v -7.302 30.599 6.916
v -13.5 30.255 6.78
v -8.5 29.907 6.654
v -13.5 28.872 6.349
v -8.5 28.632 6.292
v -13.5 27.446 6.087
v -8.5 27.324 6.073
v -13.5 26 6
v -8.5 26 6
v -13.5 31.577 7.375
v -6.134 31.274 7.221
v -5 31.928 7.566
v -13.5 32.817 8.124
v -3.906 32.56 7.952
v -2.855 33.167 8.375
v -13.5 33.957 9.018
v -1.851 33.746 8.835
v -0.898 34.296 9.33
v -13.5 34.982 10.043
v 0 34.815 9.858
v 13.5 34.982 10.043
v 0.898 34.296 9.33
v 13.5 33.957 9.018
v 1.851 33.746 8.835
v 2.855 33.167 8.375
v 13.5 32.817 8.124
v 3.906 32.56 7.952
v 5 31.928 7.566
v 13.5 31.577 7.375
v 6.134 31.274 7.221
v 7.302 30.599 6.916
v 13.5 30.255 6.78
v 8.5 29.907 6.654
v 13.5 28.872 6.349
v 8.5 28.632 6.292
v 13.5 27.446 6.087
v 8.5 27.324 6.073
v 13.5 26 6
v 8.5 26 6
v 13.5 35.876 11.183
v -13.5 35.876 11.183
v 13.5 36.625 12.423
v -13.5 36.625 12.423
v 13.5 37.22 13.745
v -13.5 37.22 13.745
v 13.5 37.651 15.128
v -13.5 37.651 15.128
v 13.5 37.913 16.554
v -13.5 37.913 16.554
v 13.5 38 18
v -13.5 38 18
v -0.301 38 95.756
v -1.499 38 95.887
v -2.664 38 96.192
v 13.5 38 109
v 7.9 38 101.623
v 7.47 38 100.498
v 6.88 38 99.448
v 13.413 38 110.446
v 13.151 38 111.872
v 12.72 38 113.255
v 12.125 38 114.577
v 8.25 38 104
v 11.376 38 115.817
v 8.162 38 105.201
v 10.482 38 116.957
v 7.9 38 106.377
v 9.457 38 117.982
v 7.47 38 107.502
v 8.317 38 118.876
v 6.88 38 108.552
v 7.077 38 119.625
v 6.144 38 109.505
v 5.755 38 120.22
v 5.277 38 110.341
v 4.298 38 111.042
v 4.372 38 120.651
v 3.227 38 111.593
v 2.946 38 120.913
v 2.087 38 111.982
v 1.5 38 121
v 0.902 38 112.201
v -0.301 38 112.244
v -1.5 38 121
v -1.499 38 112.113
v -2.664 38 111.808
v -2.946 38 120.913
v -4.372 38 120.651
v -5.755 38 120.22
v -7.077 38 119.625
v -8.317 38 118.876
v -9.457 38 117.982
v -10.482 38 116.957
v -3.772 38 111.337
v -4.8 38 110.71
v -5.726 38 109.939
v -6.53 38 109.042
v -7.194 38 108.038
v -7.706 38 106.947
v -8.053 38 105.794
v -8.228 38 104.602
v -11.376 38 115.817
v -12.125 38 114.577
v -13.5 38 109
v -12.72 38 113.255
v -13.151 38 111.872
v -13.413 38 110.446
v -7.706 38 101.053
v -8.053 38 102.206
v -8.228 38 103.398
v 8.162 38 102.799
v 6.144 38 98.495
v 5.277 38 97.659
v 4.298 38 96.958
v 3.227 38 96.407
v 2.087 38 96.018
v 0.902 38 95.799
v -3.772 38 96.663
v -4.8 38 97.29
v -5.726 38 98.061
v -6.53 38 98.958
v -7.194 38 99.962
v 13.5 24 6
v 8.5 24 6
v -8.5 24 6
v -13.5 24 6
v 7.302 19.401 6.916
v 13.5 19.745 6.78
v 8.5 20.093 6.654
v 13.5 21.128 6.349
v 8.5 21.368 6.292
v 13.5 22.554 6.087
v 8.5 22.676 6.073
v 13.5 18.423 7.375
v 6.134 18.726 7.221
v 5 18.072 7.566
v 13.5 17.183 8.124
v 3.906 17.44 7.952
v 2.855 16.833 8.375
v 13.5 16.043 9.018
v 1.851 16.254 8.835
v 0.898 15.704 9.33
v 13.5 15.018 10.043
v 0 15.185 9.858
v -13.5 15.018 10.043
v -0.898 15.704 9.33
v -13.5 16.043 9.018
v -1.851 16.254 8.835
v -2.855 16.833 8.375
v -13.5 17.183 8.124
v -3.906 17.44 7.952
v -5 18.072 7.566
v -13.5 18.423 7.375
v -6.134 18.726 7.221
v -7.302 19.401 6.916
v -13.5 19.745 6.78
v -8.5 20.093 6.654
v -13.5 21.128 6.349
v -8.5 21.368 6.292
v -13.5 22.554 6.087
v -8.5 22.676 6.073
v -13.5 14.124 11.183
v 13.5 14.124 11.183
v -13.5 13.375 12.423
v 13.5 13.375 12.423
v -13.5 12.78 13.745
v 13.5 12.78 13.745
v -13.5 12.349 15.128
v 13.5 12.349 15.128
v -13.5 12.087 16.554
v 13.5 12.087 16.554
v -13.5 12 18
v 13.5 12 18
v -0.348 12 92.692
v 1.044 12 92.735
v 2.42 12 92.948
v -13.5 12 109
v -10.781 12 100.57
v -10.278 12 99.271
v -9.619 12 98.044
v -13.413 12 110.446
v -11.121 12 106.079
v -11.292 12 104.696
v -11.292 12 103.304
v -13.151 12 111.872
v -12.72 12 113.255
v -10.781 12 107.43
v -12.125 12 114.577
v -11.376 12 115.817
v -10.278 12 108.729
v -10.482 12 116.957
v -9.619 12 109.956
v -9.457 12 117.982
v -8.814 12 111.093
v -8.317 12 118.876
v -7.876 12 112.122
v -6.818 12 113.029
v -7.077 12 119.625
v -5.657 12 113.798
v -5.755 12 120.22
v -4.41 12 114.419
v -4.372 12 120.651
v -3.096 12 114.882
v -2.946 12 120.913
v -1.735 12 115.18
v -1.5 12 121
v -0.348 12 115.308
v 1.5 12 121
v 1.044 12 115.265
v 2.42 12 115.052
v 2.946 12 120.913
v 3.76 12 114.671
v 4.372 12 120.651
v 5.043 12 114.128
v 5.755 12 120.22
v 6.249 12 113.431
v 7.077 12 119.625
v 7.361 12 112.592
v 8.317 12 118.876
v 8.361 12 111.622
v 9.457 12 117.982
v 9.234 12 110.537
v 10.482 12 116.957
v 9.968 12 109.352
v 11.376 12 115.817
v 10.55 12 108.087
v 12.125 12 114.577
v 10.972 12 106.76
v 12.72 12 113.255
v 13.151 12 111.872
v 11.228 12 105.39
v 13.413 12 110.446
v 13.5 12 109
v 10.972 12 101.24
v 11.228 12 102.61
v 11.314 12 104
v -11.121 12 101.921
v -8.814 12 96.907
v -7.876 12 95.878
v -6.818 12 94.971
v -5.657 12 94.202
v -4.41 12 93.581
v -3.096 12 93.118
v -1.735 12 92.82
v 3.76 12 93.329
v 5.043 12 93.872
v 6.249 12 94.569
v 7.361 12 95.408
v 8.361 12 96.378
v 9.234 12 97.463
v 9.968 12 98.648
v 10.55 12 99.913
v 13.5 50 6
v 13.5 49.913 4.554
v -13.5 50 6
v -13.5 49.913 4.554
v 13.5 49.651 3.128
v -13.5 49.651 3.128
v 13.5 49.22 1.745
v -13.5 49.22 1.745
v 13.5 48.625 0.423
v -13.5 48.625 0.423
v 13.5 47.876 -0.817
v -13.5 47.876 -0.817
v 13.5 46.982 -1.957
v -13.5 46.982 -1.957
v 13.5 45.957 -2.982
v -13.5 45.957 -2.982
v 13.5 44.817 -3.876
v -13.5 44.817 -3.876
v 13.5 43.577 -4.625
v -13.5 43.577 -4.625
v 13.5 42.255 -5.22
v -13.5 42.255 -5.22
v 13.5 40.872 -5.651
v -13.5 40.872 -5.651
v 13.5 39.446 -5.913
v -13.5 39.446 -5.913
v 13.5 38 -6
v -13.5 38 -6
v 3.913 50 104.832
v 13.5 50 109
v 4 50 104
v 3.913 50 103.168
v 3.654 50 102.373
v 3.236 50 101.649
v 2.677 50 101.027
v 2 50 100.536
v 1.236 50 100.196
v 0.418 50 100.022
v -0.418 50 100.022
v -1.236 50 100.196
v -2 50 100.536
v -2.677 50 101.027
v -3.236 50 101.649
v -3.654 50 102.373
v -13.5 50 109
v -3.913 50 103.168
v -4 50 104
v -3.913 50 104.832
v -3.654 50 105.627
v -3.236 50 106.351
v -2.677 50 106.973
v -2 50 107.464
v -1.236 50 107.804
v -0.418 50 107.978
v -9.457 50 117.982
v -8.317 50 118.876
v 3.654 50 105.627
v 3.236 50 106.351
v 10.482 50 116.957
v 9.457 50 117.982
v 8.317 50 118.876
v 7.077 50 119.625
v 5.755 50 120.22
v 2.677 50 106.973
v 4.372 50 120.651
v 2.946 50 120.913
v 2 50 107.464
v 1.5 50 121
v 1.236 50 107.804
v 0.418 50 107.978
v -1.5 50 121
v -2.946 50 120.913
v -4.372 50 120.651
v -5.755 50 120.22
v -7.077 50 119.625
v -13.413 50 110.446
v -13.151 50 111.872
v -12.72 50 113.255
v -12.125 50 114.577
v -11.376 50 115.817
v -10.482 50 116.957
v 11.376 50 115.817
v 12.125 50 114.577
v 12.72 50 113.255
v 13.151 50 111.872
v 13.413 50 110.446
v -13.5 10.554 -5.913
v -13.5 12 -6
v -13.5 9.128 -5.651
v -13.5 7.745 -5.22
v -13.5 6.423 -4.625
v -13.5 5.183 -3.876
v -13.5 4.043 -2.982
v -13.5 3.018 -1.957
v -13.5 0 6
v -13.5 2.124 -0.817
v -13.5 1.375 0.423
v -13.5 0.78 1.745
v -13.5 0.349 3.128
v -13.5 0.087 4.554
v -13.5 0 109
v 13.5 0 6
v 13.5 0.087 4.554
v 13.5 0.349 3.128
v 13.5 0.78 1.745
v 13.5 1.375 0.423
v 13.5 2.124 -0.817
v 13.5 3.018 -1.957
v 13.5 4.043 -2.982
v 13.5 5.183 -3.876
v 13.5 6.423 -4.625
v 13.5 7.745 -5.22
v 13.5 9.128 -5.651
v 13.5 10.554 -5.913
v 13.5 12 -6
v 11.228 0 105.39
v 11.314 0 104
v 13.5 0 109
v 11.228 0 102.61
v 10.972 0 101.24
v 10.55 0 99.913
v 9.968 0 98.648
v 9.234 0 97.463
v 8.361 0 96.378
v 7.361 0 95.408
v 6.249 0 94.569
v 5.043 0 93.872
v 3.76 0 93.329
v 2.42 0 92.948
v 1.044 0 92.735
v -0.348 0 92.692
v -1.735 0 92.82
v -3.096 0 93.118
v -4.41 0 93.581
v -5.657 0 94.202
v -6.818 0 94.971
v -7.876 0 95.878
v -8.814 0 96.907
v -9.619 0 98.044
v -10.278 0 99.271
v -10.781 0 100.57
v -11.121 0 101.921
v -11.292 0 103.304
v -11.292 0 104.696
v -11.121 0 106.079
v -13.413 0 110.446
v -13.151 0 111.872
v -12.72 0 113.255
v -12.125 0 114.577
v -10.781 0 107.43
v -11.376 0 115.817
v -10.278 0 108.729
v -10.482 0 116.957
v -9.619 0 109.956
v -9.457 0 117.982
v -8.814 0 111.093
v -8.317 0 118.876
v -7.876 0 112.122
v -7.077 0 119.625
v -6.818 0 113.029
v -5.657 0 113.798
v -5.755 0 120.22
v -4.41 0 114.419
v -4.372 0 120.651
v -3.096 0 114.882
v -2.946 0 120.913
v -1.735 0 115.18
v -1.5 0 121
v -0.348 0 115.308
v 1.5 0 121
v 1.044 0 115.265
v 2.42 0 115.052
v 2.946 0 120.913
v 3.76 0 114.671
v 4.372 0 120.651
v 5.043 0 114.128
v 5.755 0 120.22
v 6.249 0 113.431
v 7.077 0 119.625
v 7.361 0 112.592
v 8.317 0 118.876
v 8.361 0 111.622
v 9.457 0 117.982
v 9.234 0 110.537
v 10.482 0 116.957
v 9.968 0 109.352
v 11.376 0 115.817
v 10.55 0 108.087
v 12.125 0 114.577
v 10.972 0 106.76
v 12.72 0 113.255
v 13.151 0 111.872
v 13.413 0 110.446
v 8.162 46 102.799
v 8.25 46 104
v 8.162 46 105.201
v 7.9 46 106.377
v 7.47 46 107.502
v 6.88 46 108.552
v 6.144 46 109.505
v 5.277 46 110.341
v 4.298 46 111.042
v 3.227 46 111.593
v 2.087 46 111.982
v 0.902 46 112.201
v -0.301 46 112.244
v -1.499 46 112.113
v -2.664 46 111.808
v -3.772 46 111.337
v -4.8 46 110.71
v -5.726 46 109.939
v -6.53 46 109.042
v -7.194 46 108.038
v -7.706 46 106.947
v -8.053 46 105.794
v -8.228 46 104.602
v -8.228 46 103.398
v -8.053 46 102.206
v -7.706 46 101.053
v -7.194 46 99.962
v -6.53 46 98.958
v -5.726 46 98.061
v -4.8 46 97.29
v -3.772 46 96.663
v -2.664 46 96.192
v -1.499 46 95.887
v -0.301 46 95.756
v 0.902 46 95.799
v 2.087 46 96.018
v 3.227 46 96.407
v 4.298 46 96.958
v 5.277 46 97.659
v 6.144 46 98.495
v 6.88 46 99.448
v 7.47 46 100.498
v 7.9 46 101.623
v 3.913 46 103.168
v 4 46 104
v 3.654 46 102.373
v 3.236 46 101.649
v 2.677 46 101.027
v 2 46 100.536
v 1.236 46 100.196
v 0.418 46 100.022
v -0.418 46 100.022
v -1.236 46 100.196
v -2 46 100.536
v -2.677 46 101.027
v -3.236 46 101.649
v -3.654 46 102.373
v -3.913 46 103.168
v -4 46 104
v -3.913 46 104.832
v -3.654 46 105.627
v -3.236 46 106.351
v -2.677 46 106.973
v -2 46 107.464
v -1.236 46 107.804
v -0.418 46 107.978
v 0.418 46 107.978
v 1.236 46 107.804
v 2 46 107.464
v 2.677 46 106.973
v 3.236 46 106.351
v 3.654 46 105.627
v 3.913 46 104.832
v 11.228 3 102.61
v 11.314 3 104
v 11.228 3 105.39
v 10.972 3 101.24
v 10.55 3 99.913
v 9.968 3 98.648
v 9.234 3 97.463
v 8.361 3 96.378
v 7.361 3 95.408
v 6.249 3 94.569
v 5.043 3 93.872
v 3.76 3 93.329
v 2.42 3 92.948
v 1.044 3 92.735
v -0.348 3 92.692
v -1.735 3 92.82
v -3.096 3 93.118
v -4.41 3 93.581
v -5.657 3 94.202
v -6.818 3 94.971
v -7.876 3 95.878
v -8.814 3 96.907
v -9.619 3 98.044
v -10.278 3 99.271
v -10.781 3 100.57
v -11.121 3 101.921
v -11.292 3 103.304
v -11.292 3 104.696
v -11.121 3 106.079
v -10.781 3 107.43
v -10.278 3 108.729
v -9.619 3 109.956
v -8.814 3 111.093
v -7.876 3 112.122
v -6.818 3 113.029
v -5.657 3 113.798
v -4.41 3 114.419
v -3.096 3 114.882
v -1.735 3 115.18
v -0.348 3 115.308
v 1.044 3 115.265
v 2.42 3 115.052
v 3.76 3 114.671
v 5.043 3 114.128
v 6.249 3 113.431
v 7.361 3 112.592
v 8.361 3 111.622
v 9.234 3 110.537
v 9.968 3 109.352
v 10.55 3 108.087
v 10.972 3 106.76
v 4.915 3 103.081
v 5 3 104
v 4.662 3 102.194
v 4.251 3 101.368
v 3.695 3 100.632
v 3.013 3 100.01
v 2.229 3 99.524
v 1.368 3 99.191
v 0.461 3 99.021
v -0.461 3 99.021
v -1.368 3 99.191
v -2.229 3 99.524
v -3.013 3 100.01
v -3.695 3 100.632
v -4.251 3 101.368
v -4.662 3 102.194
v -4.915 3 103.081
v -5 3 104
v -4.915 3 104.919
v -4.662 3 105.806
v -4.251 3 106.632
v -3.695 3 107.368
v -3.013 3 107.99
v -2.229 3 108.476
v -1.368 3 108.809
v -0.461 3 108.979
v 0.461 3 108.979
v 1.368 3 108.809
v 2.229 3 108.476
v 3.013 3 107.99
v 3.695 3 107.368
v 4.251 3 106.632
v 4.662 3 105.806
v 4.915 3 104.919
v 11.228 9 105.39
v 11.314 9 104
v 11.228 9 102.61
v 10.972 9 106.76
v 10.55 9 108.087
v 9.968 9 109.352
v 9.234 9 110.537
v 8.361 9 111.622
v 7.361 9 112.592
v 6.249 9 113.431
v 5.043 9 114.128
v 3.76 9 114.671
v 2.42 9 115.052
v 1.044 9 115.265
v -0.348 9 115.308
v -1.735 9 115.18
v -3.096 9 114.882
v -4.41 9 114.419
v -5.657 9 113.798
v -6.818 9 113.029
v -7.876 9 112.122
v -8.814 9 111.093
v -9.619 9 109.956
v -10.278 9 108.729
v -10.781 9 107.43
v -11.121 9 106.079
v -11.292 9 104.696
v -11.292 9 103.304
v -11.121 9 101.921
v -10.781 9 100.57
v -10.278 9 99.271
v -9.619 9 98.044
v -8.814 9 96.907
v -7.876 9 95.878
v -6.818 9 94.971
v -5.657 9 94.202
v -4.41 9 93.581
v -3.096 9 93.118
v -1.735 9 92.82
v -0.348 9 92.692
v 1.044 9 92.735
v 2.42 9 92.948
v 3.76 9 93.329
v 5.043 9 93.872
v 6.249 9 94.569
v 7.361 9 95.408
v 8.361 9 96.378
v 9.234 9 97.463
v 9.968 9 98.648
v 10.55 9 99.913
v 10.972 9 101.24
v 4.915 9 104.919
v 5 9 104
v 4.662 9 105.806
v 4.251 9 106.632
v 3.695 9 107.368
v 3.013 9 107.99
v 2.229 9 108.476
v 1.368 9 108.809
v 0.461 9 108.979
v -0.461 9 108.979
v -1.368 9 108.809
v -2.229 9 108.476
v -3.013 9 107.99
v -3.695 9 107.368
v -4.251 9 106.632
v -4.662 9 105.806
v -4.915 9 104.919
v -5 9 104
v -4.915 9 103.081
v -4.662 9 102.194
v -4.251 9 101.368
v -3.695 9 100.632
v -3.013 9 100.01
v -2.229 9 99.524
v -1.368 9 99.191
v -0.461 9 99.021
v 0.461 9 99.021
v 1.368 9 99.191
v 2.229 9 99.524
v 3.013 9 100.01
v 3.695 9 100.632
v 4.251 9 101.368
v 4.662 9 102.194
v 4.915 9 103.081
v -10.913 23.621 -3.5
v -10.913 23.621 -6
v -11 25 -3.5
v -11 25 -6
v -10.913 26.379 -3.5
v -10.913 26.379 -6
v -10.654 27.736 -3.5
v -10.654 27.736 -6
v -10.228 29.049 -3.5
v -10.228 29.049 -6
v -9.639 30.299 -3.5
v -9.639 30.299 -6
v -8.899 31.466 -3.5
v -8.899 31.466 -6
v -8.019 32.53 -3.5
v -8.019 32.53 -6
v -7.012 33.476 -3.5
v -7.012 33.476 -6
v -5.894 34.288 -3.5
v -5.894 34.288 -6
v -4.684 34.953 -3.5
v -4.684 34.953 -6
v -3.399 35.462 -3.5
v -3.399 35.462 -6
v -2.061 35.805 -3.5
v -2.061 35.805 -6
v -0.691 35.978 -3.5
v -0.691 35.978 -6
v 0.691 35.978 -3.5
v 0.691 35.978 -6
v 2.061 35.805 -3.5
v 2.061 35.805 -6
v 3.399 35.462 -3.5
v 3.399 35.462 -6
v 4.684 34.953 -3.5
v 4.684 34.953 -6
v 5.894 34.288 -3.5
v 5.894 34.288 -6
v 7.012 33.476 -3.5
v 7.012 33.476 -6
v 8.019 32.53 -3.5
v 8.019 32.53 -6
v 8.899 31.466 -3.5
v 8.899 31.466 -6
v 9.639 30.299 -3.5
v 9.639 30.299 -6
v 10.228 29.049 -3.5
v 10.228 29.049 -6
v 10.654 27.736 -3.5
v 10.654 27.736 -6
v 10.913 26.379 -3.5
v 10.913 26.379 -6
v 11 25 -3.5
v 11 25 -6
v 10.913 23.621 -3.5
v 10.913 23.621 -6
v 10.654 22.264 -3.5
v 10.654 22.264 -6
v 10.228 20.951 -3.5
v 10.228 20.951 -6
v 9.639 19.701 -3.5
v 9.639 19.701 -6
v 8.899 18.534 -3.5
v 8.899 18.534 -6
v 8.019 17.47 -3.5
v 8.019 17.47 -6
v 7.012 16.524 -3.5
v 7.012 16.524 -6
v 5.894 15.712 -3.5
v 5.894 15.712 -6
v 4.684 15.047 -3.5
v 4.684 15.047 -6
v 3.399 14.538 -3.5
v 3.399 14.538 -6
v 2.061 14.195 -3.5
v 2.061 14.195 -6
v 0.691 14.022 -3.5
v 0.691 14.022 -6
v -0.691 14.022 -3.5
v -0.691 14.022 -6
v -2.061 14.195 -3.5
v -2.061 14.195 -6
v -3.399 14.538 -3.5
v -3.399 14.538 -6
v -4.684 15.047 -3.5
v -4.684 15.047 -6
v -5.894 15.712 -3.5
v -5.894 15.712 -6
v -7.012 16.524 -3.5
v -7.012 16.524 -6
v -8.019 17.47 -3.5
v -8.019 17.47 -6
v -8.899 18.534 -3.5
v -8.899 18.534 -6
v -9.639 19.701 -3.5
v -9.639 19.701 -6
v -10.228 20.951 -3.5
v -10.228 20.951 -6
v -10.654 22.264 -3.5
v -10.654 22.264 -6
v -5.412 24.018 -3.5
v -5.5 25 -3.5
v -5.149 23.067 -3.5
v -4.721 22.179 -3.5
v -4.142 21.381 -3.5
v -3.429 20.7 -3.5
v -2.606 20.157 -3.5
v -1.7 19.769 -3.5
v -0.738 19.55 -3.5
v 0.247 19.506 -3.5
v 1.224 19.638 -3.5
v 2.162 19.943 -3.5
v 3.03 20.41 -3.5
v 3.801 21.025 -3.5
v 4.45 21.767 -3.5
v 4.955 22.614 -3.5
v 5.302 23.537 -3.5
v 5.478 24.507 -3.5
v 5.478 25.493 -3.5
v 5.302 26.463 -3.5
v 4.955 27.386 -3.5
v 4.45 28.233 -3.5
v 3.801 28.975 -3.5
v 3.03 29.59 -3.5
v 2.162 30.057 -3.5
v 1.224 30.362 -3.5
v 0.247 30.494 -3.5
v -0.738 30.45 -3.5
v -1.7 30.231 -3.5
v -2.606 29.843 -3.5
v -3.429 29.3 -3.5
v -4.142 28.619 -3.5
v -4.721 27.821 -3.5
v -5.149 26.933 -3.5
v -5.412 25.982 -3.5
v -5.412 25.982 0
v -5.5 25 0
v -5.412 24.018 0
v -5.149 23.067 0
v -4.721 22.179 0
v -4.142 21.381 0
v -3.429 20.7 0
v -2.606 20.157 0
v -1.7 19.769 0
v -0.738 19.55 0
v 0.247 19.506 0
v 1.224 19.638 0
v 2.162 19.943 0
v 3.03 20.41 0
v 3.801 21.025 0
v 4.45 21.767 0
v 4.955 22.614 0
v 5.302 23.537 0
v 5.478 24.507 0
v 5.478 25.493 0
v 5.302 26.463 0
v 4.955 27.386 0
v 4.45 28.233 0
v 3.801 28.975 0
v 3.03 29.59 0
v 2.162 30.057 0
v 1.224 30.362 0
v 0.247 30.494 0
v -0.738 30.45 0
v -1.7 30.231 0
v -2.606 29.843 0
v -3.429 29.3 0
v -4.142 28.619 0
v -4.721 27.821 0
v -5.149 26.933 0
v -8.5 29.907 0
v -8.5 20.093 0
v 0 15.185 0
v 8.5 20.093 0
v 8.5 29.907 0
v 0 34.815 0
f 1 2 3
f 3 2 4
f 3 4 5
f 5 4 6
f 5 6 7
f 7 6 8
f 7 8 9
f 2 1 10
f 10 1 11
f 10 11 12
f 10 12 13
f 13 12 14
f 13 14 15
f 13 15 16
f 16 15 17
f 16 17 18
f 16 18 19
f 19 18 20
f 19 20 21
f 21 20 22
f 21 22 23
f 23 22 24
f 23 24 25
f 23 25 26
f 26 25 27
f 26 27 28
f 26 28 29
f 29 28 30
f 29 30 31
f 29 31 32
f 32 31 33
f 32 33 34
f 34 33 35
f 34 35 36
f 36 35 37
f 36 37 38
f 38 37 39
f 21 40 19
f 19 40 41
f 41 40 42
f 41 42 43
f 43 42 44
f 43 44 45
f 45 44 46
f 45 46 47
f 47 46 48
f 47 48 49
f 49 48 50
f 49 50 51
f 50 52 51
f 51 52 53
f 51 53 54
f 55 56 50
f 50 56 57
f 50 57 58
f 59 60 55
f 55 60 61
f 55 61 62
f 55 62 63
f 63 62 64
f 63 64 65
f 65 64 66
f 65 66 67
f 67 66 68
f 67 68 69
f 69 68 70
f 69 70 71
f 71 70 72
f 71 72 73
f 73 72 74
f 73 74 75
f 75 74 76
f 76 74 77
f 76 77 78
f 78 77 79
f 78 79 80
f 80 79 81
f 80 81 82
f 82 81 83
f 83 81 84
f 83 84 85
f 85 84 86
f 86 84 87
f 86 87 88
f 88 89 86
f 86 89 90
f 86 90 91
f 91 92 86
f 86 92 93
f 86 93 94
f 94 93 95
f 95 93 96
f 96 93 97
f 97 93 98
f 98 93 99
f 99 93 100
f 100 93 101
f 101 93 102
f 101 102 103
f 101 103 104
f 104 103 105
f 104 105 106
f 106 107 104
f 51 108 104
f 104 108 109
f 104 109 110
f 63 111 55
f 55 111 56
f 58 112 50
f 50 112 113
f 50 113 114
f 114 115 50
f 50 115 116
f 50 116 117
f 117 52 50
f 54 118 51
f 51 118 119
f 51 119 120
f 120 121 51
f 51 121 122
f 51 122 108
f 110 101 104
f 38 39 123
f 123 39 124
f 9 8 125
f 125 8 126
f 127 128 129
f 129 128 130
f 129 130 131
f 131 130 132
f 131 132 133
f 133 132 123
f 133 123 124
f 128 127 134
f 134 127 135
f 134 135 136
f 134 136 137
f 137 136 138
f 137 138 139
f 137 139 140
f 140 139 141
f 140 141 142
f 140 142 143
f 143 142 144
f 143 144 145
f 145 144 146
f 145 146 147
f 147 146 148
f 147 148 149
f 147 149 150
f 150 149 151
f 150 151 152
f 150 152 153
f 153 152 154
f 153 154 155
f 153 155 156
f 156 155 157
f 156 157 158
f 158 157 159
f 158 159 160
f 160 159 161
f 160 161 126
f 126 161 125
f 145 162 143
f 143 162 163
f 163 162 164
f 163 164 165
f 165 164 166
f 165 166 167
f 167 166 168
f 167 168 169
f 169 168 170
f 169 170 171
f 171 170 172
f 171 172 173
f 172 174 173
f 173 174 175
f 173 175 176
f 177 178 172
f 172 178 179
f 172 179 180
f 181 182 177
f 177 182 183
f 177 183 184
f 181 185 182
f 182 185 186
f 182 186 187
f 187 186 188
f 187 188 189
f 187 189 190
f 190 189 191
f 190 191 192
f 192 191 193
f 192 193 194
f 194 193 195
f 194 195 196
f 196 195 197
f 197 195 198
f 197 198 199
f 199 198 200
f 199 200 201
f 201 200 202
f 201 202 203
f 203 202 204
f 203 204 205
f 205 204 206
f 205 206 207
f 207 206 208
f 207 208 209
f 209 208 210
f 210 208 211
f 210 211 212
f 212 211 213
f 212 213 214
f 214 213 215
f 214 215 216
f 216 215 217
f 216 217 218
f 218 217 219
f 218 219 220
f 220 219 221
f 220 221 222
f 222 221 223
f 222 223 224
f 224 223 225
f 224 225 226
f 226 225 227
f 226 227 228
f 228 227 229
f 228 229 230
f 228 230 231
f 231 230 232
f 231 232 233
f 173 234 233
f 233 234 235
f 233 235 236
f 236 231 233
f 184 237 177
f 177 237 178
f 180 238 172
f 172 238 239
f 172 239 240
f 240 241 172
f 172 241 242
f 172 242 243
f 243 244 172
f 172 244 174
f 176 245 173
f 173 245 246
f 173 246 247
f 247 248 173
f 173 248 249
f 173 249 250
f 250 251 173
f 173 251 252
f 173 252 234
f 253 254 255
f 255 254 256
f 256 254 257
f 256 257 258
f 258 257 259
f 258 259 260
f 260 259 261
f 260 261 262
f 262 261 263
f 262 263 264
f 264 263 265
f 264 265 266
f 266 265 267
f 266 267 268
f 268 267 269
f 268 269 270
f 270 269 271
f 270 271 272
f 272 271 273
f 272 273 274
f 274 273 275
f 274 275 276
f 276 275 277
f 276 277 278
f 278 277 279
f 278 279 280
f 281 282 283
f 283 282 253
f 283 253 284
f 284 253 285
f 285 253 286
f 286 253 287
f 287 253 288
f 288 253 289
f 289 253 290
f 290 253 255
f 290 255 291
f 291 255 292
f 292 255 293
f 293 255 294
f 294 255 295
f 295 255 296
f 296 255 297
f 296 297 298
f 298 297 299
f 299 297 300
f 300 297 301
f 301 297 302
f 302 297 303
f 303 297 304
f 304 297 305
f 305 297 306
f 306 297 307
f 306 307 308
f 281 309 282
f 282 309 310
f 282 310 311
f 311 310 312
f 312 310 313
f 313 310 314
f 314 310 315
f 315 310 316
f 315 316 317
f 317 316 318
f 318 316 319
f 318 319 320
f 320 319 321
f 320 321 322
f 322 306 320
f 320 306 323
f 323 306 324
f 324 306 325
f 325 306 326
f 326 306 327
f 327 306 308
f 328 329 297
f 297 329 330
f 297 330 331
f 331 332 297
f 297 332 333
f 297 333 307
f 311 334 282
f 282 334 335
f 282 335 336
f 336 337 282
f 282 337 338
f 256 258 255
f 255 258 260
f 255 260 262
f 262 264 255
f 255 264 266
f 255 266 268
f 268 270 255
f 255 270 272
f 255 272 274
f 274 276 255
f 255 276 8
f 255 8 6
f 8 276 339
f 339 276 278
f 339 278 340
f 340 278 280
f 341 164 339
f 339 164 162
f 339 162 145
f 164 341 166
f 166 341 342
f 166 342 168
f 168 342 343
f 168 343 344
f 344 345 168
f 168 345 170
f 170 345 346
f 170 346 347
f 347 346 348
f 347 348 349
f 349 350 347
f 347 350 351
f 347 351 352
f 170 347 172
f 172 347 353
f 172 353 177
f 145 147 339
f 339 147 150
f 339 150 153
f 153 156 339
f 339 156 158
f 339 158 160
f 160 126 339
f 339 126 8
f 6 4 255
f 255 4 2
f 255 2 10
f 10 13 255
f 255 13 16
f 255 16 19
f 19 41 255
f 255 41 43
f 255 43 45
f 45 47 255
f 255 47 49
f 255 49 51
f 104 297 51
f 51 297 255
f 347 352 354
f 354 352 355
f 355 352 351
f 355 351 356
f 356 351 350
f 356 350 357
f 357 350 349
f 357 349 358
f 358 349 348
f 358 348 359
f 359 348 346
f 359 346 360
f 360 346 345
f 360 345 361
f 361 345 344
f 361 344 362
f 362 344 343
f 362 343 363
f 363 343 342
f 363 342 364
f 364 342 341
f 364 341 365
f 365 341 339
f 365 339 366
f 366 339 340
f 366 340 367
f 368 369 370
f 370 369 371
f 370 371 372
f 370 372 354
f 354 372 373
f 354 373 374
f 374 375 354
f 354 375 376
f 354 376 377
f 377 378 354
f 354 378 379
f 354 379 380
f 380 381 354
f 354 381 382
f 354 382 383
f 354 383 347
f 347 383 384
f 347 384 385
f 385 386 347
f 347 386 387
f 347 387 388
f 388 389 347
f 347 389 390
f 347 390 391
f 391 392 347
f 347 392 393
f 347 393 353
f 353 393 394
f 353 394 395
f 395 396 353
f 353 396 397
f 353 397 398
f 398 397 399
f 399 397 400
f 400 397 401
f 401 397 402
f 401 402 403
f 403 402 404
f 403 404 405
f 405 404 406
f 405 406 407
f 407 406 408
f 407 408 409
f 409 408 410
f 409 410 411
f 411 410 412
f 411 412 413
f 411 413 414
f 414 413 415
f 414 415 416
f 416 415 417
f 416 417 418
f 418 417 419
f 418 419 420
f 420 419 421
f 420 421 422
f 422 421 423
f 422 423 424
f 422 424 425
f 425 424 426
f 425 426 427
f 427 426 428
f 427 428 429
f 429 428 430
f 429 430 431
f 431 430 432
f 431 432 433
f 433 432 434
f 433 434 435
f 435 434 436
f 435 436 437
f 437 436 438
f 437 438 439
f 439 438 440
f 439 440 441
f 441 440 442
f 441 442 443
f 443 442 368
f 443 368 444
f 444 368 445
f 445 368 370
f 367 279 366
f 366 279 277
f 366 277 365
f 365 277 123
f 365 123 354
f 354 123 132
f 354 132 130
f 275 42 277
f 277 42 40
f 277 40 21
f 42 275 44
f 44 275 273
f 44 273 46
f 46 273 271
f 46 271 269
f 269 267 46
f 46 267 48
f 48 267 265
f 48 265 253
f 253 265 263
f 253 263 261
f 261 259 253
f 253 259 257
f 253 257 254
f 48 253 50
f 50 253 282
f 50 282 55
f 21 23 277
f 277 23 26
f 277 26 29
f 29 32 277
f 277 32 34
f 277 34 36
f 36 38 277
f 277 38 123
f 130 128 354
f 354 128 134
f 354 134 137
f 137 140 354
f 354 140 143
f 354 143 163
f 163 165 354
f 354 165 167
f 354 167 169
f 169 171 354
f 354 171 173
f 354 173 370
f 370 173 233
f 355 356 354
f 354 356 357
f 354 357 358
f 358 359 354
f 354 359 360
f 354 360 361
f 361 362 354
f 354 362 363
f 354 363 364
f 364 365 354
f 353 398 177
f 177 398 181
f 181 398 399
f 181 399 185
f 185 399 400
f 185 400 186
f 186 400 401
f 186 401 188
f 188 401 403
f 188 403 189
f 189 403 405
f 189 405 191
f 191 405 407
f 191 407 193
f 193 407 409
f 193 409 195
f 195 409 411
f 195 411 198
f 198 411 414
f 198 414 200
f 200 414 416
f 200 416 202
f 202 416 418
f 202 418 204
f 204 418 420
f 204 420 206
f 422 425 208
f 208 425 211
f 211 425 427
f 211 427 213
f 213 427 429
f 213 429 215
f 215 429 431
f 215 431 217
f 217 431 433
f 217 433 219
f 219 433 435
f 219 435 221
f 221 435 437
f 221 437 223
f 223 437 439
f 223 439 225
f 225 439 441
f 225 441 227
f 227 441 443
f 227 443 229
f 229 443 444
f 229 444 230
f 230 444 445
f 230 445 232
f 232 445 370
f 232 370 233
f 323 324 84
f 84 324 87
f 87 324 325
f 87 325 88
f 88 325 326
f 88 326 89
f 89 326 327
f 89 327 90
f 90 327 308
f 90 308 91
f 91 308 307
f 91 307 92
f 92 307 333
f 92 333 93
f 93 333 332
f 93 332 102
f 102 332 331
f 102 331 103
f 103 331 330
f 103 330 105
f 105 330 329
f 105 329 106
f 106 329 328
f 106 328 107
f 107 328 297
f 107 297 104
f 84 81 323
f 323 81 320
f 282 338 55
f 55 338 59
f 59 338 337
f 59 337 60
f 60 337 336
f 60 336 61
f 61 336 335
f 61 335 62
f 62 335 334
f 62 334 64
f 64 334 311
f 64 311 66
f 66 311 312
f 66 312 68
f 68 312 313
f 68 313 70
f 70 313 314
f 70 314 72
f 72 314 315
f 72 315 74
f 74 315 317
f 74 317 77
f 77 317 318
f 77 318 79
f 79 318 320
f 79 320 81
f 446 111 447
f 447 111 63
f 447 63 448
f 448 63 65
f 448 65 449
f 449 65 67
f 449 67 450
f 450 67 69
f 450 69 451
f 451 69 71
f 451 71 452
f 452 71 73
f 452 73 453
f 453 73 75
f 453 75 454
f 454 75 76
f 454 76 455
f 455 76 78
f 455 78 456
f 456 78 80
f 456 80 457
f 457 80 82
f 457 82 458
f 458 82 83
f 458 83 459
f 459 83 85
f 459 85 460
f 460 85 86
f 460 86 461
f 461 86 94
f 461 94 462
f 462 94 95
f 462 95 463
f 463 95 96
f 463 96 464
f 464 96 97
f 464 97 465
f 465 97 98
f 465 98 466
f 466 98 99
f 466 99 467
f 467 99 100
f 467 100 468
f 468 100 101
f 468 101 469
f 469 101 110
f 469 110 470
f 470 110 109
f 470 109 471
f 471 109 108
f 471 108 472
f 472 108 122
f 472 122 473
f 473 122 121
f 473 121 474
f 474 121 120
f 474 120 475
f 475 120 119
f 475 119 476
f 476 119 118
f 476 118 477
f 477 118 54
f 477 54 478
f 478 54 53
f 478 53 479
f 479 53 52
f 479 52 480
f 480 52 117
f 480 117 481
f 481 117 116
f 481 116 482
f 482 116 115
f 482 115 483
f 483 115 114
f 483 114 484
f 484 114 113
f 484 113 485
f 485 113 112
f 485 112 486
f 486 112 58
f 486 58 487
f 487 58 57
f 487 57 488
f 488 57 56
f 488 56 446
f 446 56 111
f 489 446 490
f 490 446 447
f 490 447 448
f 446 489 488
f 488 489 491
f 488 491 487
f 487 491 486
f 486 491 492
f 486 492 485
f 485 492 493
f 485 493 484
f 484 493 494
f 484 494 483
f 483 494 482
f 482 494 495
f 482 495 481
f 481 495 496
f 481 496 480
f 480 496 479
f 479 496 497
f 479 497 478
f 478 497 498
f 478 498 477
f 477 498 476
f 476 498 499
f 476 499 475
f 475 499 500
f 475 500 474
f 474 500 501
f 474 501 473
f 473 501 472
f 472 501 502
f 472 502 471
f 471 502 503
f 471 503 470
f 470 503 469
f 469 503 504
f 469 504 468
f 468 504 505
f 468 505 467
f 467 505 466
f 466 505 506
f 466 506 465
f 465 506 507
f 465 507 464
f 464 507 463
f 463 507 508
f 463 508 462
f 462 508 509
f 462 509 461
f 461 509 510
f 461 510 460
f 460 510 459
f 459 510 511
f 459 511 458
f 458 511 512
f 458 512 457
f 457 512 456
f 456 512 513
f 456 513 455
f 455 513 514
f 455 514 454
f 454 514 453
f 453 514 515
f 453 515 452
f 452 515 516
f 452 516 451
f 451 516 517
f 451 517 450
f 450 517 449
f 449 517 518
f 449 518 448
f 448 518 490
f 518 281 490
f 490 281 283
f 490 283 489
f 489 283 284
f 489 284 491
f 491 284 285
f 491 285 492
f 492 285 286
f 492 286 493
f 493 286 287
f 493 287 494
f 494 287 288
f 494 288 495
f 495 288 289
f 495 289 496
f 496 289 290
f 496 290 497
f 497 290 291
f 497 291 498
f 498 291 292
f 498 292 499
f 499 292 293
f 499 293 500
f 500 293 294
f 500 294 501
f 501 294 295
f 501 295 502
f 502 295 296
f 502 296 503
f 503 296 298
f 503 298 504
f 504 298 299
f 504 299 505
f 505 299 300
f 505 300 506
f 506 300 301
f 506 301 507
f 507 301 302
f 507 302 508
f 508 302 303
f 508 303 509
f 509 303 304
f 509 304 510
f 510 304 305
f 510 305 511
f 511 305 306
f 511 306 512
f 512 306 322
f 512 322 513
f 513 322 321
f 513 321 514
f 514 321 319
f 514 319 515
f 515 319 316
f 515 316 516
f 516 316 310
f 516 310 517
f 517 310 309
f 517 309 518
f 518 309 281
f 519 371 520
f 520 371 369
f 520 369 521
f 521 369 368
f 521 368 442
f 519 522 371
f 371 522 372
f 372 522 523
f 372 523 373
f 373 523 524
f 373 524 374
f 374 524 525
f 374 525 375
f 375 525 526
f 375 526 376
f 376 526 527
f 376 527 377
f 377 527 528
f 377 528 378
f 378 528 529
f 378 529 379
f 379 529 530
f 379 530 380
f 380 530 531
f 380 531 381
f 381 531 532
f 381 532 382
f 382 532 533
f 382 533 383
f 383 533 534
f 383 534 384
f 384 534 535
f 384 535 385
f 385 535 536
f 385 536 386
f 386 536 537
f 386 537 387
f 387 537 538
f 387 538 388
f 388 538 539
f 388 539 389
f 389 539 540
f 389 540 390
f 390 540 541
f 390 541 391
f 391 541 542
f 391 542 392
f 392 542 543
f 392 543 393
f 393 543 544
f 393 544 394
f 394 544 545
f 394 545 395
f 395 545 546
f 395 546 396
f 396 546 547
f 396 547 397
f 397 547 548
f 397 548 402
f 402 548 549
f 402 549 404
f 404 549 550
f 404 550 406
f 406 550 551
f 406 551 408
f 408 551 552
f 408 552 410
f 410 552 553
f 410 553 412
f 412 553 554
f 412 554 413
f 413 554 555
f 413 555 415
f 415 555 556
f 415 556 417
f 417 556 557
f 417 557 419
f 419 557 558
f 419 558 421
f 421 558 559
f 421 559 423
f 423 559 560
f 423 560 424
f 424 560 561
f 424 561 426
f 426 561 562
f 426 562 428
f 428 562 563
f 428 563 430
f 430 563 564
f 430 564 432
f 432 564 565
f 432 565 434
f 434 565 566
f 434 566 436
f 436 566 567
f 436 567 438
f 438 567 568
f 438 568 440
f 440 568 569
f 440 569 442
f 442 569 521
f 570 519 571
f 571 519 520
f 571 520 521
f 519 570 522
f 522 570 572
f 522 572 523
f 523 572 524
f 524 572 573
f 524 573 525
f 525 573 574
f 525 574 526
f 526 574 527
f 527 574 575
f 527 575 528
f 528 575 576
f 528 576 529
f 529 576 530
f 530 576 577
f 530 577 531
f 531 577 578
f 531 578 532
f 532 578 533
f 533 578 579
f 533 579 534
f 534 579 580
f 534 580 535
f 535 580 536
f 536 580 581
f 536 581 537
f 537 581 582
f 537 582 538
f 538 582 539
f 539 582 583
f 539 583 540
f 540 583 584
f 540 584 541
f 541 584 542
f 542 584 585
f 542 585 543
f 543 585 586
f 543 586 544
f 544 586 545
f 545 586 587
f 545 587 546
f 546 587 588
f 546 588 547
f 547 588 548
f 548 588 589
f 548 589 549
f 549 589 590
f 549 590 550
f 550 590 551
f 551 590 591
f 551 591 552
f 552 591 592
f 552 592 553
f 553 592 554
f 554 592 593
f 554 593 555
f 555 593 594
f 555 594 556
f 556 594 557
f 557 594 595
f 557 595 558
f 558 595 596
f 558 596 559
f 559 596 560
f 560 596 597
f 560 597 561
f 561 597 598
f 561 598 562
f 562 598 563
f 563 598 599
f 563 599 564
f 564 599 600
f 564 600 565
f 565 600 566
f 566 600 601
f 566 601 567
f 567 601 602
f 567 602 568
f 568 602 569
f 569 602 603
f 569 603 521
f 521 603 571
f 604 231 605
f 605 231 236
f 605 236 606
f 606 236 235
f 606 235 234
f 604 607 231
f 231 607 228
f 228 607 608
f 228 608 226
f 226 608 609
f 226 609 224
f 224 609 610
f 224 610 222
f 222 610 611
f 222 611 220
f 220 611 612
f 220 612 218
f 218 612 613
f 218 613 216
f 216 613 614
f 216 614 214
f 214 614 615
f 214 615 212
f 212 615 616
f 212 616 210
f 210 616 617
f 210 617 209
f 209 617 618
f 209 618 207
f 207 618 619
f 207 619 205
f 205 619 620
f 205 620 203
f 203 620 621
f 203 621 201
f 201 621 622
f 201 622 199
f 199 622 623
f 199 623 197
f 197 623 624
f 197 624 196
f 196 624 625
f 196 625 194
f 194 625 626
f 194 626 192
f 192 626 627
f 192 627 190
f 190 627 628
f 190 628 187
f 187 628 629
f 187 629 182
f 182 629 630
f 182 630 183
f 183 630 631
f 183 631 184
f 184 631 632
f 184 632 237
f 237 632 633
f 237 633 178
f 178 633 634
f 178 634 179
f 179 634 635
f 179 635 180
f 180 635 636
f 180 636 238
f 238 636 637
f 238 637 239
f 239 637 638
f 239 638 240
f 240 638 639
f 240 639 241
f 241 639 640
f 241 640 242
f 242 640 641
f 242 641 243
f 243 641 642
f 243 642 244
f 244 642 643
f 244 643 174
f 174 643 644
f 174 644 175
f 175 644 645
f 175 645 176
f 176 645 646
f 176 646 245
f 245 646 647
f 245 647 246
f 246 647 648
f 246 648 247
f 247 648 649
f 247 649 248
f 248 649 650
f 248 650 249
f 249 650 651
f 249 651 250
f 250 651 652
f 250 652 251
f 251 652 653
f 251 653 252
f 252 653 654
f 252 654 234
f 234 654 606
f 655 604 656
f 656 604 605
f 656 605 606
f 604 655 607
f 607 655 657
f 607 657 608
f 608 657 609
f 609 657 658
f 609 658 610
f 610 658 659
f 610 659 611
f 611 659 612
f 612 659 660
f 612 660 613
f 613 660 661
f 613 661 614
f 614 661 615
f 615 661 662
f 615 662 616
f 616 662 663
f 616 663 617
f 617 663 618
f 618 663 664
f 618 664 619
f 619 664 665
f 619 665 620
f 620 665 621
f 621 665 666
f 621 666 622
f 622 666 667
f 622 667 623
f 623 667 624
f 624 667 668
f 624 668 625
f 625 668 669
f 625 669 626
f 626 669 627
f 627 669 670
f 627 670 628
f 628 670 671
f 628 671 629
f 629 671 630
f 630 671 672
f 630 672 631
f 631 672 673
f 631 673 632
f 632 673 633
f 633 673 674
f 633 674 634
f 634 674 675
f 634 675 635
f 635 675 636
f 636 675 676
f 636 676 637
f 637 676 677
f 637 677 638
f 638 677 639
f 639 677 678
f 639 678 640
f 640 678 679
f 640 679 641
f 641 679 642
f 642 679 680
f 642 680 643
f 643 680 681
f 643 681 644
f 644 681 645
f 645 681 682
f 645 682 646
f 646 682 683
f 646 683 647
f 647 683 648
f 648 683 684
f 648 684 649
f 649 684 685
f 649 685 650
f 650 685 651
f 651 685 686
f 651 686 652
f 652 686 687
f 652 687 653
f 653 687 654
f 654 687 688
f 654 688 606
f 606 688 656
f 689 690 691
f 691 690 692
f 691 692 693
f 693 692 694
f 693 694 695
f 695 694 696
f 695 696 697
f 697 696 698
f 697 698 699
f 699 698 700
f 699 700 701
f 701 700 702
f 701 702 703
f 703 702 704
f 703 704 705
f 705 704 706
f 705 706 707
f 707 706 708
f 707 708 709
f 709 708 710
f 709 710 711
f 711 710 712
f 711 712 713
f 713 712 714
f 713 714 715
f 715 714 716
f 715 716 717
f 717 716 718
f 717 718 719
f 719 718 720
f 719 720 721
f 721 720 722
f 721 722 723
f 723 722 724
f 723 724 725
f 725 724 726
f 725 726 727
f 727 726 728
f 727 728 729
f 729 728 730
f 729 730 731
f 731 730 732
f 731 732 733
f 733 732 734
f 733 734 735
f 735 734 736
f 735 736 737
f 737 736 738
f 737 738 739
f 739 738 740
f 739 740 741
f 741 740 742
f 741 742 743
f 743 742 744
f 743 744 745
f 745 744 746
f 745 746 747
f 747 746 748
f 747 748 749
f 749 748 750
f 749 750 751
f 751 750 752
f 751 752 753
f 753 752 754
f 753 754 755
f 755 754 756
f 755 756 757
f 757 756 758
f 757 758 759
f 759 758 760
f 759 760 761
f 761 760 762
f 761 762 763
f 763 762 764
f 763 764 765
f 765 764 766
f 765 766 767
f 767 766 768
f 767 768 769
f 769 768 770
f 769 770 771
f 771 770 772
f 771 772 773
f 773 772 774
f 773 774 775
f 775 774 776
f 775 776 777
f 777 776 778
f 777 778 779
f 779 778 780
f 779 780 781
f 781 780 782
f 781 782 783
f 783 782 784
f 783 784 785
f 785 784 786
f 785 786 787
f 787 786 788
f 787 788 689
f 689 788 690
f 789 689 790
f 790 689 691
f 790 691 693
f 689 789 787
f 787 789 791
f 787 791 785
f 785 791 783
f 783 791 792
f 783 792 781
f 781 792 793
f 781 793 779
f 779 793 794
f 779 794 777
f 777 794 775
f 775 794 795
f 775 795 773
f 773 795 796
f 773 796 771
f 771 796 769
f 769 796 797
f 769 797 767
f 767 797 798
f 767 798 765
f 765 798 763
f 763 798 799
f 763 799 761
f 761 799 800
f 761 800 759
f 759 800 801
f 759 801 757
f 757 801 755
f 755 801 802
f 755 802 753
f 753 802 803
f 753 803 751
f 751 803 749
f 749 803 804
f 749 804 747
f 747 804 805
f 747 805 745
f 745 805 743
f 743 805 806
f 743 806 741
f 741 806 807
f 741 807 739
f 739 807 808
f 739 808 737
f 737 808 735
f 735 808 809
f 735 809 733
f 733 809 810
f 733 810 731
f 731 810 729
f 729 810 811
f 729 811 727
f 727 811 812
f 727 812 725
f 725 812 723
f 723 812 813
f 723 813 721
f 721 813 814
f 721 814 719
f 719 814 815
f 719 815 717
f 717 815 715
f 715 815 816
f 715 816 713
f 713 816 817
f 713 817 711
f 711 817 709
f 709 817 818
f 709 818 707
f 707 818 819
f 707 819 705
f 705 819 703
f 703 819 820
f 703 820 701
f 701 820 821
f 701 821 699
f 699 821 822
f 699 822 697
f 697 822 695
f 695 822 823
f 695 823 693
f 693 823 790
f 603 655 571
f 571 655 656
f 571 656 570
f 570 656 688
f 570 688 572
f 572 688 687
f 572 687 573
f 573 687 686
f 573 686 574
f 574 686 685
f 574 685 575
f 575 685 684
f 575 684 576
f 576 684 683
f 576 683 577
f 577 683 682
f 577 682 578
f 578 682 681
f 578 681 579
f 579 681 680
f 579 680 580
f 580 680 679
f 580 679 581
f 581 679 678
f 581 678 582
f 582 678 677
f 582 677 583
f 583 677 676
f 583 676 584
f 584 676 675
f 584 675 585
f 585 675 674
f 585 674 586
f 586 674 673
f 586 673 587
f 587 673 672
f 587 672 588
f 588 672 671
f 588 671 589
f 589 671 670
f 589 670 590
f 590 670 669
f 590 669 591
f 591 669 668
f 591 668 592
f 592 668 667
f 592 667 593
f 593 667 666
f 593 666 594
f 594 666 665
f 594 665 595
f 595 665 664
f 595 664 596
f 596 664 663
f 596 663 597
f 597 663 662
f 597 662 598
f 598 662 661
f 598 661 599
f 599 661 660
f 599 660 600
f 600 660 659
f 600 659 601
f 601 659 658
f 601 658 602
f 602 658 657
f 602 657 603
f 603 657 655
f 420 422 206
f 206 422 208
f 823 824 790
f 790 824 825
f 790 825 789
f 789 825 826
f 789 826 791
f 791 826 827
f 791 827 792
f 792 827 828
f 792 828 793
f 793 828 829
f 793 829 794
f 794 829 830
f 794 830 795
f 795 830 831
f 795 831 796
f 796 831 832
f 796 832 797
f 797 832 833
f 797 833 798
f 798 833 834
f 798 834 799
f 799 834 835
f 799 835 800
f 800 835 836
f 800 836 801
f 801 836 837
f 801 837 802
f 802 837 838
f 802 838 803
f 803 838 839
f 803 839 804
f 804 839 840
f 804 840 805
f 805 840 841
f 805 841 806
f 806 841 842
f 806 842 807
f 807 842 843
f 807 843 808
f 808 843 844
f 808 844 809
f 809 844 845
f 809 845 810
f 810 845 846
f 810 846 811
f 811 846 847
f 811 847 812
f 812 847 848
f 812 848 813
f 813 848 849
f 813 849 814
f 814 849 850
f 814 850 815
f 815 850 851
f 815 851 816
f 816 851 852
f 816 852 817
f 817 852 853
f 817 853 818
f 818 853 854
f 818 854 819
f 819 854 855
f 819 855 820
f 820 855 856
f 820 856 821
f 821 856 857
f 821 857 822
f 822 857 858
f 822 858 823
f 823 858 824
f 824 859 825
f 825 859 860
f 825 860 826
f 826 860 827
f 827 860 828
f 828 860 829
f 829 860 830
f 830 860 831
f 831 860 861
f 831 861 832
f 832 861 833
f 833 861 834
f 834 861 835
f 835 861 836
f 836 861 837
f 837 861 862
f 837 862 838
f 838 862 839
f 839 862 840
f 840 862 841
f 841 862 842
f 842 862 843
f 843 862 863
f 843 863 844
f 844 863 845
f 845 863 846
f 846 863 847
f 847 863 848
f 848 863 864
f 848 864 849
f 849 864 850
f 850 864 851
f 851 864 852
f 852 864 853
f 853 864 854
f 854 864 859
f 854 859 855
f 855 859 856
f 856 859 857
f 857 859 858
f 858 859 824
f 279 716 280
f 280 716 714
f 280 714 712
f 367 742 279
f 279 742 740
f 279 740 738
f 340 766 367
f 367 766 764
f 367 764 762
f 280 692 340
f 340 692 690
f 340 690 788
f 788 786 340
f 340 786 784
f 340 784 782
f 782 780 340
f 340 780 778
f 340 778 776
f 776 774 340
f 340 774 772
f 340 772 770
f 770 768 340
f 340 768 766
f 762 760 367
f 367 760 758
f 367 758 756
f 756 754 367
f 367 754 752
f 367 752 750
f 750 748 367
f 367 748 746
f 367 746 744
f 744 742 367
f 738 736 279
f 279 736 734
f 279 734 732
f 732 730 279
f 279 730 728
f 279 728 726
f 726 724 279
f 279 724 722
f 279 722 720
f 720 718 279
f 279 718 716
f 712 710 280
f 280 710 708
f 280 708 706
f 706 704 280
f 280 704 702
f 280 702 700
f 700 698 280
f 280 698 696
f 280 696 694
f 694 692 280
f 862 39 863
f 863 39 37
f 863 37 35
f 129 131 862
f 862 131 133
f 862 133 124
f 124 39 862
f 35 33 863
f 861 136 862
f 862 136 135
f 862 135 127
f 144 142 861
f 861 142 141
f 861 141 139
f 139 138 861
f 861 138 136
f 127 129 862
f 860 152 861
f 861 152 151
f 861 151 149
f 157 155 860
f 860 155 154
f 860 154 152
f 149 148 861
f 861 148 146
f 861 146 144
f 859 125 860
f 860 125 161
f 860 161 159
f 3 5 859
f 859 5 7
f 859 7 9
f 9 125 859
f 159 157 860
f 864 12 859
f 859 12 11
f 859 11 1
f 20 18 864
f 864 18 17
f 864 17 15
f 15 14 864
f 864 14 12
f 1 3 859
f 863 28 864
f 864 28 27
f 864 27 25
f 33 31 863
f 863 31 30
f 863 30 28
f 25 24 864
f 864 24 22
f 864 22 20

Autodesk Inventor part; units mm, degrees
ref_plane "YZ Plane" through (0, 0, 0) normal (1, 0, 0) x (0, 1, 0)
ref_plane "XZ Plane" through (0, 0, 0) normal (0, 1, 0) x (-1, 0, 0)
ref_plane "XY Plane" through (0, 0, 0) normal (0, 0, 1) x (1, 0, 0)
sketch "Boceto1" plane through (0, 0, 0) normal (0, 0, 1) x (1, 0, 0)
  line L0 (-13.5, 50) -> (13.5, 50)
  line L1 (13.5, 50) -> (13.5, 0)
  line L2 (13.5, 0) -> (-13.5, 0)
  line L3 (-13.5, 0) -> (-13.5, 50)
  line L4 (0, 0) -> (0, 50) construction
  line L5 (0, 34.815) -> (8.5, 29.9075)
  line L6 (8.5, 29.9075) -> (8.5, 20.0925)
  line L7 (8.5, 20.0925) -> (0, 15.185)
  line L8 (0, 15.185) -> (-8.5, 20.0925)
  line L9 (-8.5, 20.0925) -> (-8.5, 29.9075)
  line L10 (-8.5, 29.9075) -> (0, 34.815)
  line L11 (-8.5, 29.9075) -> (-13.5, 29.9075) construction
  line L12 (8.5, 29.9075) -> (13.5, 29.9075) construction
  point P0 (0, 25)
  dimension "d20" = 17
  dimension "d21" = 5
  dimension "d22" = 27
  dimension "d23" = 50
extrude "Extrusión1" add sketch "Boceto1" along normal blind 6
sketch "Boceto2" plane through (0, 0, 0) normal (0, 0, -1) x (-1, 0, 0)
  line L0 (-8.5, 20.0925) -> (-8.5, 29.9075) projected
  line L1 (-8.5, 29.9075) -> (0, 34.815) projected
  line L2 (0, 34.815) -> (8.5, 29.9075) projected
  line L3 (8.5, 29.9075) -> (8.5, 20.0925) projected
  line L4 (8.5, 20.0925) -> (0, 15.185) projected
  line L5 (0, 15.185) -> (-8.5, 20.0925) projected
  line L6 (13.5, 50) -> (-13.5, 50) projected
  line L7 (-13.5, 50) -> (-13.5, 0) projected
  line L8 (-13.5, 0) -> (13.5, 0) projected
  line L9 (13.5, 0) -> (13.5, 50) projected
  point P0 (0, 0)
extrude "Extrusión2" add sketch "Boceto2" along normal blind 6 contours L0 L1 L2 L3 L4 L5 | L9 L8 L7 L6
sketch "Boceto3" plane through (0, 0, -6) normal (0, 0, -1) x (-1, 0, 0)
  line L0 (0, 0) -> (0, 50) construction
  line L1 (-13.5, 50) -> (13.5, 50) projected
  circle A0 centre (0, 25) radius 5.5
  dimension "d18" = 11
extrude "Extrusión3" cut sketch "Boceto3" against normal up to next
sketch "Boceto5" plane through (0, 0, 6) normal (0, 0, 1) x (1, 0, 0)
  line L0 (-13.5, 0) -> (-13.5, 50) projected
  line L1 (13.5, 50) -> (13.5, 0) projected
  line L2 (-13.5, 0) -> (13.5, 0)
  line L3 (13.5, 0) -> (13.5, 12)
  line L4 (13.5, 12) -> (-13.5, 12)
  line L5 (-13.5, 12) -> (-13.5, 0)
  line L6 (13.5, 50) -> (-13.5, 50) projected
  line L7 (-13.5, 50) -> (13.5, 50)
  line L8 (13.5, 50) -> (13.5, 38)
  line L9 (13.5, 38) -> (-13.5, 38)
  line L10 (-13.5, 38) -> (-13.5, 50)
  line L11 (-17.3027, 25) -> (12.0796, 25) construction
  line L12 (-8.5, 20.0925) -> (-8.5, 29.9075) projected
  point P0 (0, 0)
  point P1 (-8.5, 25)
  dimension "d24" = 12
extrude "Extrusión4" add sketch "Boceto5" along normal blind 115 contours L0 L4 L1 L2 | L0 L6 L1 L9
sketch "Boceto9" plane through (-13.5, 0, -6) normal (0, -1, 0) x (1, 0, 0)
  circle A0 centre (13.5, 110) radius 5
  line L0 (0, 127) -> (27, 127) projected
  line L1 (13.5, 110) -> (13.5, 115)
  line L2 (13.5, 115) -> (13.5, 127)
  line L3 (0, 127) -> (27, 127) projected
  point P0 (13.5, 6)
  dimension "d25" = 10
  dimension "d32" = 12
extrude "Extrusión8" cut sketch "Boceto9" against normal up to surface (12 mm away)
sketch "Boceto10" plane through (0, 0, -6) normal (0, 0, -1) x (-1, 0, 0)
  circle A0 centre (0, 25) radius 11
  circle A1 centre (0, 25) radius 5.5 projected
  point P0 (0, 0)
  dimension "d29" = 22
extrude "Extrusión9" cut sketch "Boceto10" against normal blind 2.5
sketch "Boceto11" plane through (-13.5, 12, 6) normal (0, 1, 0) x (1, 0, 0)
  line L0 (21.5, -106) -> (5.5, -106) construction
  line L1 (5.5, -106) -> (5.5, -90) construction
  line L2 (5.5, -90) -> (21.5, -90) construction
  line L3 (21.5, -90) -> (21.5, -106) construction
  line L4 (5.5, -106) -> (21.5, -90) construction
  circle A0 centre (13.5, -98) radius 8 construction
  circle A1 centre (13.5, -98) radius 11.3137
  line L5 (27, 0) -> (27, -115) projected
  circle A2 centre (13.5, -98) radius 5 projected
  point P0 (13.5, 6)
  dimension "d45" = 16
extrude "Extrusión10" cut sketch "Boceto11" against normal blind 3 contours A1 | A2
sketch "Boceto12" plane through (-13.5, 0, -6) normal (0, -1, 0) x (1, 0, 0)
  circle A0 centre (13.5, 110) radius 11.3137 projected
  line L0 (0, 127) -> (0, 0) projected
  point P0 (13.5, 6)
extrude "Extrusión11" cut sketch "Boceto12" against normal blind 3
sketch "Boceto14" plane through (-13.5, 50, -6) normal (0, 1, 0) x (1, 0, 0)
  circle A0 centre (13.5, -110) radius 5 projected
  circle A1 centre (13.5, -110) radius 4
  point P0 (13.5, -6)
  dimension "d38" = 8
extrude "Extrusión12" cut sketch "Boceto14" against normal up to next contours A1
sketch "Boceto15" plane through (-13.5, 38, 6) normal (0, -1, 0) x (1, 0, 0)
  circle A0 centre (13.5, 98) radius 4 projected
  circle A1 centre (13.5, 98) radius 8.25
  point P0 (13.5, -6)
  dimension "d41" = 16.5
extrude "Extrusión13" cut sketch "Boceto15" against normal blind 8
fillet "Empalme4" radius 12 4 edges at (13.5, 44, 121) (-13.5, 44, 121) (13.5, 6, 121) (-13.5, 6, 121)
fillet "Empalme5" radius 12 2 edges at (0, 0, -6) (0, 50, -6)
fillet "Empalme6" radius 12 2 edges at (0, 12, 6) (0, 38, 6)
properties part number "U3"
